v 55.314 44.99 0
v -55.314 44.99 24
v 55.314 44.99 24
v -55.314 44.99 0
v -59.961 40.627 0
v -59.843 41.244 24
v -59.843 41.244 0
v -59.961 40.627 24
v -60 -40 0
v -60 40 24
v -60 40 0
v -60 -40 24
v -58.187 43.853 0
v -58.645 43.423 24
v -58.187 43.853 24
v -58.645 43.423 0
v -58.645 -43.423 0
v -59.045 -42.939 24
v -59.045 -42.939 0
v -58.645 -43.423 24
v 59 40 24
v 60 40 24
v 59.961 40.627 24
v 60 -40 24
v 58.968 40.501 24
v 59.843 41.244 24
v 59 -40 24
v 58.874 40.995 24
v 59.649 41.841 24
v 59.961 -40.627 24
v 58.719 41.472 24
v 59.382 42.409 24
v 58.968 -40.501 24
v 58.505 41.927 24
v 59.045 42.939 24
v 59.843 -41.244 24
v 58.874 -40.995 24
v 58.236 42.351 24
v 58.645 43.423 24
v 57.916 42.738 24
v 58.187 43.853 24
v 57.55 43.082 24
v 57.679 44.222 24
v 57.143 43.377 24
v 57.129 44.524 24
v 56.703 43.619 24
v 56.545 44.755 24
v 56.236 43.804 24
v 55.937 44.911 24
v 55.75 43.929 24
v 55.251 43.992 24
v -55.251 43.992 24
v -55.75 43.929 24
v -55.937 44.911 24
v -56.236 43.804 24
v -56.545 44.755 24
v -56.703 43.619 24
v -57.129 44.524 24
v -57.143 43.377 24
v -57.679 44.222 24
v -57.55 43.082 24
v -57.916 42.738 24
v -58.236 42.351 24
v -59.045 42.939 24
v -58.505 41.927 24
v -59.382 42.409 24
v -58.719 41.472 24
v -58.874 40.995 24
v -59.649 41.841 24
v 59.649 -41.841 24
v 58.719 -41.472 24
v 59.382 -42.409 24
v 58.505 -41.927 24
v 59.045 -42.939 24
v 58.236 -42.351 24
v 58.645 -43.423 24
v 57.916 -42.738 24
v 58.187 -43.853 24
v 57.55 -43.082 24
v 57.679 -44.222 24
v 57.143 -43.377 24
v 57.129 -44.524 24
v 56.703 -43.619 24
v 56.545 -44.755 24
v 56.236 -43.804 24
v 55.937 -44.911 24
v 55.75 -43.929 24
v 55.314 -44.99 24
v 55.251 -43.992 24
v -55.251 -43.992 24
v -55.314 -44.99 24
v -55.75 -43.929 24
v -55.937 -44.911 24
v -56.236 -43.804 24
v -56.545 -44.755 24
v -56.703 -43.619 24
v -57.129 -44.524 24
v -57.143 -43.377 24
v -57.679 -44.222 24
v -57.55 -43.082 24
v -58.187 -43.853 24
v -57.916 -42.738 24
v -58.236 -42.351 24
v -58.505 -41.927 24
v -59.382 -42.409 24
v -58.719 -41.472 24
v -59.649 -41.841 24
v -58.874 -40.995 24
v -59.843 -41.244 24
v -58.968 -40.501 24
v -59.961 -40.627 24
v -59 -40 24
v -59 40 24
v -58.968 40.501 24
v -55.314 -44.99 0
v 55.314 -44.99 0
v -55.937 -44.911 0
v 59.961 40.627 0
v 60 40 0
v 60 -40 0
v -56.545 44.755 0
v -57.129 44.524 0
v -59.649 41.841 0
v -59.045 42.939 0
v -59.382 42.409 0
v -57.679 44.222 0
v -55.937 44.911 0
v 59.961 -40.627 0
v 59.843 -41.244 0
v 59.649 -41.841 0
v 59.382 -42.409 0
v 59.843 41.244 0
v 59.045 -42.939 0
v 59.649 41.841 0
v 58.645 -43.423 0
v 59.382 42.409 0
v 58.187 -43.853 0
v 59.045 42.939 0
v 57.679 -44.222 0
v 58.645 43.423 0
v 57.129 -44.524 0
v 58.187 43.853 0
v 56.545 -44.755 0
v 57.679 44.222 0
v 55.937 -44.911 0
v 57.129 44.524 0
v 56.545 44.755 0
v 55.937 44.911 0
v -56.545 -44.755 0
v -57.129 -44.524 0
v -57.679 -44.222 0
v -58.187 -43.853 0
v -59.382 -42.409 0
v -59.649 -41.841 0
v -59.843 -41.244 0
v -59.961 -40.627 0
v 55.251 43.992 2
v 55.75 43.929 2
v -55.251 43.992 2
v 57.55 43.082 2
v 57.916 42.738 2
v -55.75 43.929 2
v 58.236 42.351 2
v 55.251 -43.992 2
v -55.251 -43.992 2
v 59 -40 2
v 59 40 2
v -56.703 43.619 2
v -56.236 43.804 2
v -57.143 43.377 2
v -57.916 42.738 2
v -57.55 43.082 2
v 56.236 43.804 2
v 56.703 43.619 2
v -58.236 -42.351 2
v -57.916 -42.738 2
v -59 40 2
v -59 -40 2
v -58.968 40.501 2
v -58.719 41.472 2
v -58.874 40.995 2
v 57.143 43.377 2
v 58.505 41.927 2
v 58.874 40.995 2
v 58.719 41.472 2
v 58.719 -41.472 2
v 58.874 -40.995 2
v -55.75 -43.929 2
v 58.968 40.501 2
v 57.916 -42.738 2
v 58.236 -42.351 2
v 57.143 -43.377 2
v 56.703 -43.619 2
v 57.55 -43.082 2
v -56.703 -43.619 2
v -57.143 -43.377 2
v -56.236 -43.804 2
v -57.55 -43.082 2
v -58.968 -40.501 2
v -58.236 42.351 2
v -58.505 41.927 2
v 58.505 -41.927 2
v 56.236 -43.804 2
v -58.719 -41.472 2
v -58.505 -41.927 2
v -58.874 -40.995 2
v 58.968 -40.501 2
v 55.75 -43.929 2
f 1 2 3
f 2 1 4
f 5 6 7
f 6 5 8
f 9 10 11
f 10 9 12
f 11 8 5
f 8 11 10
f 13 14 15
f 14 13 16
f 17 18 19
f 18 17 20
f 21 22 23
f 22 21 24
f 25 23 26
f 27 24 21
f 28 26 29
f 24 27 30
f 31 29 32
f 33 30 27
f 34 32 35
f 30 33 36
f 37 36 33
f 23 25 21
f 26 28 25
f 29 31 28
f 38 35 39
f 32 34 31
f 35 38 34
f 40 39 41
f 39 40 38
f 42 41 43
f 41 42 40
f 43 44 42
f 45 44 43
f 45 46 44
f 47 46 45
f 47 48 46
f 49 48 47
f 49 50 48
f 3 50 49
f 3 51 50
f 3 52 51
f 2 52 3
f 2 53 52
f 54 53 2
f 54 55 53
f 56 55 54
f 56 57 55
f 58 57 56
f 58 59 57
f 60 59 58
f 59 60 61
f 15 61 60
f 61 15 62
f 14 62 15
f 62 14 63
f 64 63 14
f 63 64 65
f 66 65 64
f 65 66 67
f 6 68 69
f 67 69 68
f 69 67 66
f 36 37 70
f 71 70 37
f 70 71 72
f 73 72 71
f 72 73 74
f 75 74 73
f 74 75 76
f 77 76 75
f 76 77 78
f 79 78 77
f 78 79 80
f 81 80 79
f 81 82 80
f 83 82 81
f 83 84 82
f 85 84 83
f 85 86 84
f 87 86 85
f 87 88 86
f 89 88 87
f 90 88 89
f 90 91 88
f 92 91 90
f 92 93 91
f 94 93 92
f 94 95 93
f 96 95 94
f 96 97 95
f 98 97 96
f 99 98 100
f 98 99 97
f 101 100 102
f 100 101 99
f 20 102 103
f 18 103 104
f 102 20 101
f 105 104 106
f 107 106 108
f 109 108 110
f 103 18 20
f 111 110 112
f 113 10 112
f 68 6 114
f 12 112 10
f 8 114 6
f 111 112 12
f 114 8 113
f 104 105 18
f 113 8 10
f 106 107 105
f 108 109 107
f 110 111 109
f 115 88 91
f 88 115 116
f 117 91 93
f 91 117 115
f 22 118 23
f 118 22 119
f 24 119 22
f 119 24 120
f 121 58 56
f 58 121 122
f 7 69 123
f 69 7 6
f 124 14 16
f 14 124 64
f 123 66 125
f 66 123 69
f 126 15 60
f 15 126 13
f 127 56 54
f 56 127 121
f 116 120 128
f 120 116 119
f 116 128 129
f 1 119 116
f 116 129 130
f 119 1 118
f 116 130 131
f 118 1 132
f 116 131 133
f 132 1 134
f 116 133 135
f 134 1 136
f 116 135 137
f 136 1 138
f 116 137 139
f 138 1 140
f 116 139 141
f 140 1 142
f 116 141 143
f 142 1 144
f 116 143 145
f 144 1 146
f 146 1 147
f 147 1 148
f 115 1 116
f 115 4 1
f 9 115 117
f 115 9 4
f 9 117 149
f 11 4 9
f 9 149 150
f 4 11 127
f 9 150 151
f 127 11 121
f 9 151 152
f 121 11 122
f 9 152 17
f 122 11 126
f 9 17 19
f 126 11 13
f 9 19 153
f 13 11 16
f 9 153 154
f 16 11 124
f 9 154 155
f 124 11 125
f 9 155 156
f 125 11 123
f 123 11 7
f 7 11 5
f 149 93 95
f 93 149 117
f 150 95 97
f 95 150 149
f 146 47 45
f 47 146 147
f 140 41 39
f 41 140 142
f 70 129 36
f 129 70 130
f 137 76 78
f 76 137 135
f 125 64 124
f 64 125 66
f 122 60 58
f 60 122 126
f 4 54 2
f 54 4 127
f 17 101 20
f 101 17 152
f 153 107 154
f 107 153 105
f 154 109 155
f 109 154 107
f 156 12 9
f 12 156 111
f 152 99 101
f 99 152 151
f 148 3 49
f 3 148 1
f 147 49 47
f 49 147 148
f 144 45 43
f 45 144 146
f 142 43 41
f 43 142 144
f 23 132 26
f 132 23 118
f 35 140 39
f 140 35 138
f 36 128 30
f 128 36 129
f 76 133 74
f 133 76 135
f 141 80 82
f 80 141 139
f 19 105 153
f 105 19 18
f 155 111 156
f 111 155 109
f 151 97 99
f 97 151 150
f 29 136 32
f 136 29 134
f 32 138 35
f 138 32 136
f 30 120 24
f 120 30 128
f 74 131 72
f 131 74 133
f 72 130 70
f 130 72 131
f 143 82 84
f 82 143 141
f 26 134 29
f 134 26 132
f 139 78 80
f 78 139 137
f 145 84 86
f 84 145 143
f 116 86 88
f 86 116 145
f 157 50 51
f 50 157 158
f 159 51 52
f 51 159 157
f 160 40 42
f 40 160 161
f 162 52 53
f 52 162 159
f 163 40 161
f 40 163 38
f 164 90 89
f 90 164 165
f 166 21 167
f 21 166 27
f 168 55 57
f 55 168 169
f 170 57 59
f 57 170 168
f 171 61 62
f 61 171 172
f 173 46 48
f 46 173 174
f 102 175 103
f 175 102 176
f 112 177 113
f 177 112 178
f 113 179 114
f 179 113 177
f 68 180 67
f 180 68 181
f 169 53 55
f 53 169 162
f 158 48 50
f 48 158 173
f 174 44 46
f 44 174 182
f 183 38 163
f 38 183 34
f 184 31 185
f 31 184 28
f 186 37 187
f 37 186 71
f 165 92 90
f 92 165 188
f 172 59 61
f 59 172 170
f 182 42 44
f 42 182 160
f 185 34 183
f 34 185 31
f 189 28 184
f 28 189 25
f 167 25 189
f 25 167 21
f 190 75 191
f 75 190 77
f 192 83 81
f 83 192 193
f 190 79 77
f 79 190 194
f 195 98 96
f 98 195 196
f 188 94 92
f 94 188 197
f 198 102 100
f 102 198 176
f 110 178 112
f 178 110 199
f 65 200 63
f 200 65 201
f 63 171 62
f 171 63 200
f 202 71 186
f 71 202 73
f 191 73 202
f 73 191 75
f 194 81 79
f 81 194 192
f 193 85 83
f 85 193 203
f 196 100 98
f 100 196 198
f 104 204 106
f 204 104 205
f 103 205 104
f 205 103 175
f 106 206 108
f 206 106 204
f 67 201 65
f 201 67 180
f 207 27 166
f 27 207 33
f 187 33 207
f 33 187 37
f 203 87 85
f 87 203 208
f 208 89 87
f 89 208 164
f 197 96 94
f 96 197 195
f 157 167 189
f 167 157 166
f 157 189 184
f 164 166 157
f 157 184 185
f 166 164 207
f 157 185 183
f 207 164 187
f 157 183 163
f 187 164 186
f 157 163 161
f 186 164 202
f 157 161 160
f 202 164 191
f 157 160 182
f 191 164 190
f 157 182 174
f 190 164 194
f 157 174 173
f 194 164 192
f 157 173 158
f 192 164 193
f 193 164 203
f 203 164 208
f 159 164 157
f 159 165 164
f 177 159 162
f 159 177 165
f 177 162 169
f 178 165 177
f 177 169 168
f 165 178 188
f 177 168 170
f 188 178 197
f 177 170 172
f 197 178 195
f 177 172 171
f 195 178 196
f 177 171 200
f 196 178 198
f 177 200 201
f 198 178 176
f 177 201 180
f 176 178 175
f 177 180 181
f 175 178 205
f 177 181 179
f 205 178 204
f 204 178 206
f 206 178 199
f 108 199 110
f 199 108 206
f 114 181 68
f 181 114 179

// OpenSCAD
$fn = 50;


difference() {
	union() {
		hull() {
			translate(v = [-55.0000000000, 40.0000000000, 0]) {
				cylinder(h = 24, r = 5);
			}
			translate(v = [55.0000000000, 40.0000000000, 0]) {
				cylinder(h = 24, r = 5);
			}
			translate(v = [-55.0000000000, -40.0000000000, 0]) {
				cylinder(h = 24, r = 5);
			}
			translate(v = [55.0000000000, -40.0000000000, 0]) {
				cylinder(h = 24, r = 5);
			}
		}
	}
	union() {
		translate(v = [0, 0, 2]) {
			hull() {
				translate(v = [-55.0000000000, 40.0000000000, 0]) {
					cylinder(h = 22, r = 4);
				}
				translate(v = [55.0000000000, 40.0000000000, 0]) {
					cylinder(h = 22, r = 4);
				}
				translate(v = [-55.0000000000, -40.0000000000, 0]) {
					cylinder(h = 22, r = 4);
				}
				translate(v = [55.0000000000, -40.0000000000, 0]) {
					cylinder(h = 22, r = 4);
				}
			}
		}
	}
}
